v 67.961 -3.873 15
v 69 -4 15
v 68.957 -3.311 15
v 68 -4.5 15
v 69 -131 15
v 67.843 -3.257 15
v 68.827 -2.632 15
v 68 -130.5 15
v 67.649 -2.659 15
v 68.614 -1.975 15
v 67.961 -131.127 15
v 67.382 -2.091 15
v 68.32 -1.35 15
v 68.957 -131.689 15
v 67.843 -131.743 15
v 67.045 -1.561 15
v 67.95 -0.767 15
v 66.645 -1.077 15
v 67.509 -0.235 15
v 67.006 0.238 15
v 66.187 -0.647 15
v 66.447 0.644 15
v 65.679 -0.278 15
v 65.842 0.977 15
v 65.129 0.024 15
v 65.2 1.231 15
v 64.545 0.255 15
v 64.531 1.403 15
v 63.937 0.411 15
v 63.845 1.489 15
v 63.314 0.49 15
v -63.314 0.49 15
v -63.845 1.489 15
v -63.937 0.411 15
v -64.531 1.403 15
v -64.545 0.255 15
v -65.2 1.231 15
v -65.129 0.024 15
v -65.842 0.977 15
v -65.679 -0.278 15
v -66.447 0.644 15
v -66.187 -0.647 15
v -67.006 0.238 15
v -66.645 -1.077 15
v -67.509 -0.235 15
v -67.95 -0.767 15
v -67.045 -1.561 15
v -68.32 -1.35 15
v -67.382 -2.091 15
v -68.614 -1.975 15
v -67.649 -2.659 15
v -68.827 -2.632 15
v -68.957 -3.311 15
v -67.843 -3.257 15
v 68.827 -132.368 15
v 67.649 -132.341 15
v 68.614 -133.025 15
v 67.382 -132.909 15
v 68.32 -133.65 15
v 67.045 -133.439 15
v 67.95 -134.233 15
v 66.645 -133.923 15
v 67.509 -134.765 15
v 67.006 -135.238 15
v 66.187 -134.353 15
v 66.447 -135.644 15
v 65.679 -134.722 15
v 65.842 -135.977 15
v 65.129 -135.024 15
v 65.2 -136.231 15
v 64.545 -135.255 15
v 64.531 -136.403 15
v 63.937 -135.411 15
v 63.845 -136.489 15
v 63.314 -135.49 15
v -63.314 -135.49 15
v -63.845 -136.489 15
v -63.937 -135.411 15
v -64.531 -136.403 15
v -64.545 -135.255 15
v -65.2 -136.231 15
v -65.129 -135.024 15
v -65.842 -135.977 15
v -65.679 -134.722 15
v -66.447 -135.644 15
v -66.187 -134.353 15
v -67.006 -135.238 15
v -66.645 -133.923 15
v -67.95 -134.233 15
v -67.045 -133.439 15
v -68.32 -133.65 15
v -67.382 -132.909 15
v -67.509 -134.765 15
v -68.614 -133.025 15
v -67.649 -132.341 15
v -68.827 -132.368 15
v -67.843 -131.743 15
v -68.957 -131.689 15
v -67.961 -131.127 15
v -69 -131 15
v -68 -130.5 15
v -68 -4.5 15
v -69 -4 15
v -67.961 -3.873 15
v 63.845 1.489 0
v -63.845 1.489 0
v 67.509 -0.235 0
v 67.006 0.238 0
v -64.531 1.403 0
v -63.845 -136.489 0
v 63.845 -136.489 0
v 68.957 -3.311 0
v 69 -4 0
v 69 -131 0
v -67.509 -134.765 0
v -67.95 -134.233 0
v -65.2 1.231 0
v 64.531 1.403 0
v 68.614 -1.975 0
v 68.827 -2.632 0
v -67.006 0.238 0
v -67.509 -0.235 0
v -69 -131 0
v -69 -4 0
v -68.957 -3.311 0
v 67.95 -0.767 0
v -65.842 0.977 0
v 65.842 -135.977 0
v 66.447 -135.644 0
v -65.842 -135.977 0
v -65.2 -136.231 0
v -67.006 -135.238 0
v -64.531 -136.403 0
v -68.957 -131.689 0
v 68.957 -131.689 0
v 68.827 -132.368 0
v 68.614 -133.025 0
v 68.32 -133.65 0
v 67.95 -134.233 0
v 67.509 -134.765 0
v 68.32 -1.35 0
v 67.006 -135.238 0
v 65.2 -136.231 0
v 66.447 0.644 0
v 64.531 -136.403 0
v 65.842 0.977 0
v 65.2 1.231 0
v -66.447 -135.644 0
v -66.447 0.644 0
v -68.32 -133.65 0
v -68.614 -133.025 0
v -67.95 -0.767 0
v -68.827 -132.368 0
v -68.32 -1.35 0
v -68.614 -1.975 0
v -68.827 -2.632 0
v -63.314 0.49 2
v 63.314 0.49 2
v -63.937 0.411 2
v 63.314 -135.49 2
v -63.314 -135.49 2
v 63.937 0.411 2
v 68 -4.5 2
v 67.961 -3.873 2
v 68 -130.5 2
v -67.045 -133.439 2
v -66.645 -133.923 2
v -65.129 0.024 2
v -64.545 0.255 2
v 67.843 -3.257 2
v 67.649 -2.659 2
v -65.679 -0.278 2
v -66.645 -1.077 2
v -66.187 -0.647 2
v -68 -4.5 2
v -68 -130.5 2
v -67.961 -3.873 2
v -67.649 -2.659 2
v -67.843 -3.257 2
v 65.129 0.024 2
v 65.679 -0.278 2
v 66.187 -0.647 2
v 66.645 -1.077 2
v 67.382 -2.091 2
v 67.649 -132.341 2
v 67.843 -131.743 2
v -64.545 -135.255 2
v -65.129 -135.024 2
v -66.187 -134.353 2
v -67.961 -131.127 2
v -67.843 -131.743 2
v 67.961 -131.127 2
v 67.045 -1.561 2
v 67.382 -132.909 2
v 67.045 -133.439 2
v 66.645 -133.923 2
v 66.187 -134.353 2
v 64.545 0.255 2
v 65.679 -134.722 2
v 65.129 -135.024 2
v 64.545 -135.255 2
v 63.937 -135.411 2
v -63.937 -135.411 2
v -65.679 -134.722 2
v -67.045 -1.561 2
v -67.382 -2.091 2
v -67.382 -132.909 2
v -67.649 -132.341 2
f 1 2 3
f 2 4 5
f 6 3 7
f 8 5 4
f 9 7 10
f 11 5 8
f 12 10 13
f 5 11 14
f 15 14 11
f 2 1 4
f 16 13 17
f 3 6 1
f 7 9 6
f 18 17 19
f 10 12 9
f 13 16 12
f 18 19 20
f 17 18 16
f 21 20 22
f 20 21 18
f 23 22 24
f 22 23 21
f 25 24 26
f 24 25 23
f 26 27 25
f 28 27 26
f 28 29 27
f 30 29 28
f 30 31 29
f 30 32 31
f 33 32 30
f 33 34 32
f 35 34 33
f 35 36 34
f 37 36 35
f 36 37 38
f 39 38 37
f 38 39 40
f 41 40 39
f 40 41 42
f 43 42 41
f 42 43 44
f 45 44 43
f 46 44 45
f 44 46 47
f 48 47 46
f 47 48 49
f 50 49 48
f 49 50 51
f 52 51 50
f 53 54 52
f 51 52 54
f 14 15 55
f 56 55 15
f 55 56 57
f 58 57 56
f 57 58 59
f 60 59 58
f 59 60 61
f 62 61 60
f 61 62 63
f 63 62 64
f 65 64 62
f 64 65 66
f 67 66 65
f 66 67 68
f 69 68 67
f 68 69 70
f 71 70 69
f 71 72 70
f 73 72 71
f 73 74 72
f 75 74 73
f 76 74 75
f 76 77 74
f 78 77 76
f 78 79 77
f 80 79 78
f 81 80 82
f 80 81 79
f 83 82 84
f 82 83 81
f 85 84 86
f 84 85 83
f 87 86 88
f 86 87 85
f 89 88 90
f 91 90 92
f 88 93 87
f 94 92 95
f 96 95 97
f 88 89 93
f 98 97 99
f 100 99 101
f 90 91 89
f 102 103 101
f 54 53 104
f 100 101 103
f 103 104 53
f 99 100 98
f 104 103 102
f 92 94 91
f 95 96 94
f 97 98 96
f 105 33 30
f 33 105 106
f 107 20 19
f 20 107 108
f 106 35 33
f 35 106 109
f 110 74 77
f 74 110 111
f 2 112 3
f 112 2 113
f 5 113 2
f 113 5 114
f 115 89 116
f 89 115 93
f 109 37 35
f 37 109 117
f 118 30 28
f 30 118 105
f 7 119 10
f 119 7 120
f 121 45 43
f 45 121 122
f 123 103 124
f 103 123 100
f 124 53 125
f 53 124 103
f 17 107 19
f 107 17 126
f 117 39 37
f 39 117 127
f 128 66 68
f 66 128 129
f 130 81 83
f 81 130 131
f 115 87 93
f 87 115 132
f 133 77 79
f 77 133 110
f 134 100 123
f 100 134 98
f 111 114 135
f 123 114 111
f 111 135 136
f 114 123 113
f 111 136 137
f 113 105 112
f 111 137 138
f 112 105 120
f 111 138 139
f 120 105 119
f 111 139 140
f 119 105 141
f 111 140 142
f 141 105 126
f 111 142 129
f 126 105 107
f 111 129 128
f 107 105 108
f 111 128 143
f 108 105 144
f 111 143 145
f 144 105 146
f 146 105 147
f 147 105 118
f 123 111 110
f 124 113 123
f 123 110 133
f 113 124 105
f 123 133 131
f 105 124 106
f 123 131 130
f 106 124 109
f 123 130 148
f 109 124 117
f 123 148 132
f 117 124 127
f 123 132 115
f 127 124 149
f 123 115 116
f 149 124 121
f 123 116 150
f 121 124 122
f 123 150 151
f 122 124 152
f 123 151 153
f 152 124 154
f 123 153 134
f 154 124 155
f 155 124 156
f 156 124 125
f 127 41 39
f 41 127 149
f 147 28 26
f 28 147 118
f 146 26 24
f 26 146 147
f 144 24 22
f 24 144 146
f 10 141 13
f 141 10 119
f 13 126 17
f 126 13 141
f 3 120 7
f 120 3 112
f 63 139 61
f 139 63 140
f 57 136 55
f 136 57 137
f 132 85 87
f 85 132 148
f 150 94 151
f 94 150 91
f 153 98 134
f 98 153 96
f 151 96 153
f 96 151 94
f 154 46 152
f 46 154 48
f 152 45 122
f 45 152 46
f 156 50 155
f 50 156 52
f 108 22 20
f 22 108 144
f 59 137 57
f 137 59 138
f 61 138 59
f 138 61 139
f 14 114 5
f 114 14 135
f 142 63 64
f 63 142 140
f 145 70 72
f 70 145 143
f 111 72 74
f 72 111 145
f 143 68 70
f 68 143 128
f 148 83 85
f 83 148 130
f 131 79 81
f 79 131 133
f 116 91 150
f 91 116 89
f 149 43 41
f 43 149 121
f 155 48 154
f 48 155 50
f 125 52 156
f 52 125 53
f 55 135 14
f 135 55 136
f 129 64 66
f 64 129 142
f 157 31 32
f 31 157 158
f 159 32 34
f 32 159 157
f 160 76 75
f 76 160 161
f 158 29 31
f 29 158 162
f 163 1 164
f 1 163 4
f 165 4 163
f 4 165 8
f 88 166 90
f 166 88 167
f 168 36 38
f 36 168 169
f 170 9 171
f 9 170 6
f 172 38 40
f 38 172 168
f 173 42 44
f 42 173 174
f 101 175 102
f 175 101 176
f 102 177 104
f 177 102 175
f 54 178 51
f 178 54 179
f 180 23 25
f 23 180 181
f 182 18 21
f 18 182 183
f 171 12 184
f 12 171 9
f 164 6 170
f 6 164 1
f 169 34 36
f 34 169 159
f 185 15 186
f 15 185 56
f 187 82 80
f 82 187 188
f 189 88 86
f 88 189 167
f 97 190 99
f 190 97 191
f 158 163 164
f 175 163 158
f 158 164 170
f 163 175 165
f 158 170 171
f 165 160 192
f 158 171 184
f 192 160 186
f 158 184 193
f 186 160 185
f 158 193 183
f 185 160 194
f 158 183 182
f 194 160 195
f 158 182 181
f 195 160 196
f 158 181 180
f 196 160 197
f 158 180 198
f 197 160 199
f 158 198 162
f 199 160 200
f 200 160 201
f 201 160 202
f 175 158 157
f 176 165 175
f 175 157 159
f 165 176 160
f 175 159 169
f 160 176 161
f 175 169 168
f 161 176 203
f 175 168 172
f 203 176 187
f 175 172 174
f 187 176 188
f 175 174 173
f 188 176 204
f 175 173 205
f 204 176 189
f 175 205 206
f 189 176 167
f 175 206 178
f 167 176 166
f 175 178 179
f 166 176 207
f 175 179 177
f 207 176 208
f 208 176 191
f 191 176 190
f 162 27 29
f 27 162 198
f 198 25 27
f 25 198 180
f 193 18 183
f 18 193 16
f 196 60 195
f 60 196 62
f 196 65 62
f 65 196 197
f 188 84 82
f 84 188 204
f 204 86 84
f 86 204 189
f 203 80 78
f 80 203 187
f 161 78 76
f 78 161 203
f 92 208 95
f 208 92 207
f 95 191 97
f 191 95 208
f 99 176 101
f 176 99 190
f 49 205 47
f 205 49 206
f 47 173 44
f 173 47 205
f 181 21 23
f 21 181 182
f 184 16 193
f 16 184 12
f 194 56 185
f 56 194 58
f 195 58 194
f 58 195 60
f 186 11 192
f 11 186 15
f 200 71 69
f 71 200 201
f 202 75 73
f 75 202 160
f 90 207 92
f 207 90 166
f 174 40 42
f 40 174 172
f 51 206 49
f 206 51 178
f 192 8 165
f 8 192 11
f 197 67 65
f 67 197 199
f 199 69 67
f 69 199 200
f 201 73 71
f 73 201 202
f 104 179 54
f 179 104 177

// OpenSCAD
$fn = 50;


difference() {
	union() {
		translate(v = [0, -67.5000000000, 0]) {
			hull() {
				translate(v = [-63.5000000000, 63.5000000000, 0]) {
					cylinder(h = 15, r = 5.5000000000);
				}
				translate(v = [63.5000000000, 63.5000000000, 0]) {
					cylinder(h = 15, r = 5.5000000000);
				}
				translate(v = [-63.5000000000, -63.5000000000, 0]) {
					cylinder(h = 15, r = 5.5000000000);
				}
				translate(v = [63.5000000000, -63.5000000000, 0]) {
					cylinder(h = 15, r = 5.5000000000);
				}
			}
		}
	}
	union() {
		translate(v = [0, -67.5000000000, 2]) {
			hull() {
				translate(v = [-63.0000000000, 63.0000000000, 0]) {
					cylinder(h = 30, r = 5);
				}
				translate(v = [63.0000000000, 63.0000000000, 0]) {
					cylinder(h = 30, r = 5);
				}
				translate(v = [-63.0000000000, -63.0000000000, 0]) {
					cylinder(h = 30, r = 5);
				}
				translate(v = [63.0000000000, -63.0000000000, 0]) {
					cylinder(h = 30, r = 5);
				}
			}
		}
	}
}
